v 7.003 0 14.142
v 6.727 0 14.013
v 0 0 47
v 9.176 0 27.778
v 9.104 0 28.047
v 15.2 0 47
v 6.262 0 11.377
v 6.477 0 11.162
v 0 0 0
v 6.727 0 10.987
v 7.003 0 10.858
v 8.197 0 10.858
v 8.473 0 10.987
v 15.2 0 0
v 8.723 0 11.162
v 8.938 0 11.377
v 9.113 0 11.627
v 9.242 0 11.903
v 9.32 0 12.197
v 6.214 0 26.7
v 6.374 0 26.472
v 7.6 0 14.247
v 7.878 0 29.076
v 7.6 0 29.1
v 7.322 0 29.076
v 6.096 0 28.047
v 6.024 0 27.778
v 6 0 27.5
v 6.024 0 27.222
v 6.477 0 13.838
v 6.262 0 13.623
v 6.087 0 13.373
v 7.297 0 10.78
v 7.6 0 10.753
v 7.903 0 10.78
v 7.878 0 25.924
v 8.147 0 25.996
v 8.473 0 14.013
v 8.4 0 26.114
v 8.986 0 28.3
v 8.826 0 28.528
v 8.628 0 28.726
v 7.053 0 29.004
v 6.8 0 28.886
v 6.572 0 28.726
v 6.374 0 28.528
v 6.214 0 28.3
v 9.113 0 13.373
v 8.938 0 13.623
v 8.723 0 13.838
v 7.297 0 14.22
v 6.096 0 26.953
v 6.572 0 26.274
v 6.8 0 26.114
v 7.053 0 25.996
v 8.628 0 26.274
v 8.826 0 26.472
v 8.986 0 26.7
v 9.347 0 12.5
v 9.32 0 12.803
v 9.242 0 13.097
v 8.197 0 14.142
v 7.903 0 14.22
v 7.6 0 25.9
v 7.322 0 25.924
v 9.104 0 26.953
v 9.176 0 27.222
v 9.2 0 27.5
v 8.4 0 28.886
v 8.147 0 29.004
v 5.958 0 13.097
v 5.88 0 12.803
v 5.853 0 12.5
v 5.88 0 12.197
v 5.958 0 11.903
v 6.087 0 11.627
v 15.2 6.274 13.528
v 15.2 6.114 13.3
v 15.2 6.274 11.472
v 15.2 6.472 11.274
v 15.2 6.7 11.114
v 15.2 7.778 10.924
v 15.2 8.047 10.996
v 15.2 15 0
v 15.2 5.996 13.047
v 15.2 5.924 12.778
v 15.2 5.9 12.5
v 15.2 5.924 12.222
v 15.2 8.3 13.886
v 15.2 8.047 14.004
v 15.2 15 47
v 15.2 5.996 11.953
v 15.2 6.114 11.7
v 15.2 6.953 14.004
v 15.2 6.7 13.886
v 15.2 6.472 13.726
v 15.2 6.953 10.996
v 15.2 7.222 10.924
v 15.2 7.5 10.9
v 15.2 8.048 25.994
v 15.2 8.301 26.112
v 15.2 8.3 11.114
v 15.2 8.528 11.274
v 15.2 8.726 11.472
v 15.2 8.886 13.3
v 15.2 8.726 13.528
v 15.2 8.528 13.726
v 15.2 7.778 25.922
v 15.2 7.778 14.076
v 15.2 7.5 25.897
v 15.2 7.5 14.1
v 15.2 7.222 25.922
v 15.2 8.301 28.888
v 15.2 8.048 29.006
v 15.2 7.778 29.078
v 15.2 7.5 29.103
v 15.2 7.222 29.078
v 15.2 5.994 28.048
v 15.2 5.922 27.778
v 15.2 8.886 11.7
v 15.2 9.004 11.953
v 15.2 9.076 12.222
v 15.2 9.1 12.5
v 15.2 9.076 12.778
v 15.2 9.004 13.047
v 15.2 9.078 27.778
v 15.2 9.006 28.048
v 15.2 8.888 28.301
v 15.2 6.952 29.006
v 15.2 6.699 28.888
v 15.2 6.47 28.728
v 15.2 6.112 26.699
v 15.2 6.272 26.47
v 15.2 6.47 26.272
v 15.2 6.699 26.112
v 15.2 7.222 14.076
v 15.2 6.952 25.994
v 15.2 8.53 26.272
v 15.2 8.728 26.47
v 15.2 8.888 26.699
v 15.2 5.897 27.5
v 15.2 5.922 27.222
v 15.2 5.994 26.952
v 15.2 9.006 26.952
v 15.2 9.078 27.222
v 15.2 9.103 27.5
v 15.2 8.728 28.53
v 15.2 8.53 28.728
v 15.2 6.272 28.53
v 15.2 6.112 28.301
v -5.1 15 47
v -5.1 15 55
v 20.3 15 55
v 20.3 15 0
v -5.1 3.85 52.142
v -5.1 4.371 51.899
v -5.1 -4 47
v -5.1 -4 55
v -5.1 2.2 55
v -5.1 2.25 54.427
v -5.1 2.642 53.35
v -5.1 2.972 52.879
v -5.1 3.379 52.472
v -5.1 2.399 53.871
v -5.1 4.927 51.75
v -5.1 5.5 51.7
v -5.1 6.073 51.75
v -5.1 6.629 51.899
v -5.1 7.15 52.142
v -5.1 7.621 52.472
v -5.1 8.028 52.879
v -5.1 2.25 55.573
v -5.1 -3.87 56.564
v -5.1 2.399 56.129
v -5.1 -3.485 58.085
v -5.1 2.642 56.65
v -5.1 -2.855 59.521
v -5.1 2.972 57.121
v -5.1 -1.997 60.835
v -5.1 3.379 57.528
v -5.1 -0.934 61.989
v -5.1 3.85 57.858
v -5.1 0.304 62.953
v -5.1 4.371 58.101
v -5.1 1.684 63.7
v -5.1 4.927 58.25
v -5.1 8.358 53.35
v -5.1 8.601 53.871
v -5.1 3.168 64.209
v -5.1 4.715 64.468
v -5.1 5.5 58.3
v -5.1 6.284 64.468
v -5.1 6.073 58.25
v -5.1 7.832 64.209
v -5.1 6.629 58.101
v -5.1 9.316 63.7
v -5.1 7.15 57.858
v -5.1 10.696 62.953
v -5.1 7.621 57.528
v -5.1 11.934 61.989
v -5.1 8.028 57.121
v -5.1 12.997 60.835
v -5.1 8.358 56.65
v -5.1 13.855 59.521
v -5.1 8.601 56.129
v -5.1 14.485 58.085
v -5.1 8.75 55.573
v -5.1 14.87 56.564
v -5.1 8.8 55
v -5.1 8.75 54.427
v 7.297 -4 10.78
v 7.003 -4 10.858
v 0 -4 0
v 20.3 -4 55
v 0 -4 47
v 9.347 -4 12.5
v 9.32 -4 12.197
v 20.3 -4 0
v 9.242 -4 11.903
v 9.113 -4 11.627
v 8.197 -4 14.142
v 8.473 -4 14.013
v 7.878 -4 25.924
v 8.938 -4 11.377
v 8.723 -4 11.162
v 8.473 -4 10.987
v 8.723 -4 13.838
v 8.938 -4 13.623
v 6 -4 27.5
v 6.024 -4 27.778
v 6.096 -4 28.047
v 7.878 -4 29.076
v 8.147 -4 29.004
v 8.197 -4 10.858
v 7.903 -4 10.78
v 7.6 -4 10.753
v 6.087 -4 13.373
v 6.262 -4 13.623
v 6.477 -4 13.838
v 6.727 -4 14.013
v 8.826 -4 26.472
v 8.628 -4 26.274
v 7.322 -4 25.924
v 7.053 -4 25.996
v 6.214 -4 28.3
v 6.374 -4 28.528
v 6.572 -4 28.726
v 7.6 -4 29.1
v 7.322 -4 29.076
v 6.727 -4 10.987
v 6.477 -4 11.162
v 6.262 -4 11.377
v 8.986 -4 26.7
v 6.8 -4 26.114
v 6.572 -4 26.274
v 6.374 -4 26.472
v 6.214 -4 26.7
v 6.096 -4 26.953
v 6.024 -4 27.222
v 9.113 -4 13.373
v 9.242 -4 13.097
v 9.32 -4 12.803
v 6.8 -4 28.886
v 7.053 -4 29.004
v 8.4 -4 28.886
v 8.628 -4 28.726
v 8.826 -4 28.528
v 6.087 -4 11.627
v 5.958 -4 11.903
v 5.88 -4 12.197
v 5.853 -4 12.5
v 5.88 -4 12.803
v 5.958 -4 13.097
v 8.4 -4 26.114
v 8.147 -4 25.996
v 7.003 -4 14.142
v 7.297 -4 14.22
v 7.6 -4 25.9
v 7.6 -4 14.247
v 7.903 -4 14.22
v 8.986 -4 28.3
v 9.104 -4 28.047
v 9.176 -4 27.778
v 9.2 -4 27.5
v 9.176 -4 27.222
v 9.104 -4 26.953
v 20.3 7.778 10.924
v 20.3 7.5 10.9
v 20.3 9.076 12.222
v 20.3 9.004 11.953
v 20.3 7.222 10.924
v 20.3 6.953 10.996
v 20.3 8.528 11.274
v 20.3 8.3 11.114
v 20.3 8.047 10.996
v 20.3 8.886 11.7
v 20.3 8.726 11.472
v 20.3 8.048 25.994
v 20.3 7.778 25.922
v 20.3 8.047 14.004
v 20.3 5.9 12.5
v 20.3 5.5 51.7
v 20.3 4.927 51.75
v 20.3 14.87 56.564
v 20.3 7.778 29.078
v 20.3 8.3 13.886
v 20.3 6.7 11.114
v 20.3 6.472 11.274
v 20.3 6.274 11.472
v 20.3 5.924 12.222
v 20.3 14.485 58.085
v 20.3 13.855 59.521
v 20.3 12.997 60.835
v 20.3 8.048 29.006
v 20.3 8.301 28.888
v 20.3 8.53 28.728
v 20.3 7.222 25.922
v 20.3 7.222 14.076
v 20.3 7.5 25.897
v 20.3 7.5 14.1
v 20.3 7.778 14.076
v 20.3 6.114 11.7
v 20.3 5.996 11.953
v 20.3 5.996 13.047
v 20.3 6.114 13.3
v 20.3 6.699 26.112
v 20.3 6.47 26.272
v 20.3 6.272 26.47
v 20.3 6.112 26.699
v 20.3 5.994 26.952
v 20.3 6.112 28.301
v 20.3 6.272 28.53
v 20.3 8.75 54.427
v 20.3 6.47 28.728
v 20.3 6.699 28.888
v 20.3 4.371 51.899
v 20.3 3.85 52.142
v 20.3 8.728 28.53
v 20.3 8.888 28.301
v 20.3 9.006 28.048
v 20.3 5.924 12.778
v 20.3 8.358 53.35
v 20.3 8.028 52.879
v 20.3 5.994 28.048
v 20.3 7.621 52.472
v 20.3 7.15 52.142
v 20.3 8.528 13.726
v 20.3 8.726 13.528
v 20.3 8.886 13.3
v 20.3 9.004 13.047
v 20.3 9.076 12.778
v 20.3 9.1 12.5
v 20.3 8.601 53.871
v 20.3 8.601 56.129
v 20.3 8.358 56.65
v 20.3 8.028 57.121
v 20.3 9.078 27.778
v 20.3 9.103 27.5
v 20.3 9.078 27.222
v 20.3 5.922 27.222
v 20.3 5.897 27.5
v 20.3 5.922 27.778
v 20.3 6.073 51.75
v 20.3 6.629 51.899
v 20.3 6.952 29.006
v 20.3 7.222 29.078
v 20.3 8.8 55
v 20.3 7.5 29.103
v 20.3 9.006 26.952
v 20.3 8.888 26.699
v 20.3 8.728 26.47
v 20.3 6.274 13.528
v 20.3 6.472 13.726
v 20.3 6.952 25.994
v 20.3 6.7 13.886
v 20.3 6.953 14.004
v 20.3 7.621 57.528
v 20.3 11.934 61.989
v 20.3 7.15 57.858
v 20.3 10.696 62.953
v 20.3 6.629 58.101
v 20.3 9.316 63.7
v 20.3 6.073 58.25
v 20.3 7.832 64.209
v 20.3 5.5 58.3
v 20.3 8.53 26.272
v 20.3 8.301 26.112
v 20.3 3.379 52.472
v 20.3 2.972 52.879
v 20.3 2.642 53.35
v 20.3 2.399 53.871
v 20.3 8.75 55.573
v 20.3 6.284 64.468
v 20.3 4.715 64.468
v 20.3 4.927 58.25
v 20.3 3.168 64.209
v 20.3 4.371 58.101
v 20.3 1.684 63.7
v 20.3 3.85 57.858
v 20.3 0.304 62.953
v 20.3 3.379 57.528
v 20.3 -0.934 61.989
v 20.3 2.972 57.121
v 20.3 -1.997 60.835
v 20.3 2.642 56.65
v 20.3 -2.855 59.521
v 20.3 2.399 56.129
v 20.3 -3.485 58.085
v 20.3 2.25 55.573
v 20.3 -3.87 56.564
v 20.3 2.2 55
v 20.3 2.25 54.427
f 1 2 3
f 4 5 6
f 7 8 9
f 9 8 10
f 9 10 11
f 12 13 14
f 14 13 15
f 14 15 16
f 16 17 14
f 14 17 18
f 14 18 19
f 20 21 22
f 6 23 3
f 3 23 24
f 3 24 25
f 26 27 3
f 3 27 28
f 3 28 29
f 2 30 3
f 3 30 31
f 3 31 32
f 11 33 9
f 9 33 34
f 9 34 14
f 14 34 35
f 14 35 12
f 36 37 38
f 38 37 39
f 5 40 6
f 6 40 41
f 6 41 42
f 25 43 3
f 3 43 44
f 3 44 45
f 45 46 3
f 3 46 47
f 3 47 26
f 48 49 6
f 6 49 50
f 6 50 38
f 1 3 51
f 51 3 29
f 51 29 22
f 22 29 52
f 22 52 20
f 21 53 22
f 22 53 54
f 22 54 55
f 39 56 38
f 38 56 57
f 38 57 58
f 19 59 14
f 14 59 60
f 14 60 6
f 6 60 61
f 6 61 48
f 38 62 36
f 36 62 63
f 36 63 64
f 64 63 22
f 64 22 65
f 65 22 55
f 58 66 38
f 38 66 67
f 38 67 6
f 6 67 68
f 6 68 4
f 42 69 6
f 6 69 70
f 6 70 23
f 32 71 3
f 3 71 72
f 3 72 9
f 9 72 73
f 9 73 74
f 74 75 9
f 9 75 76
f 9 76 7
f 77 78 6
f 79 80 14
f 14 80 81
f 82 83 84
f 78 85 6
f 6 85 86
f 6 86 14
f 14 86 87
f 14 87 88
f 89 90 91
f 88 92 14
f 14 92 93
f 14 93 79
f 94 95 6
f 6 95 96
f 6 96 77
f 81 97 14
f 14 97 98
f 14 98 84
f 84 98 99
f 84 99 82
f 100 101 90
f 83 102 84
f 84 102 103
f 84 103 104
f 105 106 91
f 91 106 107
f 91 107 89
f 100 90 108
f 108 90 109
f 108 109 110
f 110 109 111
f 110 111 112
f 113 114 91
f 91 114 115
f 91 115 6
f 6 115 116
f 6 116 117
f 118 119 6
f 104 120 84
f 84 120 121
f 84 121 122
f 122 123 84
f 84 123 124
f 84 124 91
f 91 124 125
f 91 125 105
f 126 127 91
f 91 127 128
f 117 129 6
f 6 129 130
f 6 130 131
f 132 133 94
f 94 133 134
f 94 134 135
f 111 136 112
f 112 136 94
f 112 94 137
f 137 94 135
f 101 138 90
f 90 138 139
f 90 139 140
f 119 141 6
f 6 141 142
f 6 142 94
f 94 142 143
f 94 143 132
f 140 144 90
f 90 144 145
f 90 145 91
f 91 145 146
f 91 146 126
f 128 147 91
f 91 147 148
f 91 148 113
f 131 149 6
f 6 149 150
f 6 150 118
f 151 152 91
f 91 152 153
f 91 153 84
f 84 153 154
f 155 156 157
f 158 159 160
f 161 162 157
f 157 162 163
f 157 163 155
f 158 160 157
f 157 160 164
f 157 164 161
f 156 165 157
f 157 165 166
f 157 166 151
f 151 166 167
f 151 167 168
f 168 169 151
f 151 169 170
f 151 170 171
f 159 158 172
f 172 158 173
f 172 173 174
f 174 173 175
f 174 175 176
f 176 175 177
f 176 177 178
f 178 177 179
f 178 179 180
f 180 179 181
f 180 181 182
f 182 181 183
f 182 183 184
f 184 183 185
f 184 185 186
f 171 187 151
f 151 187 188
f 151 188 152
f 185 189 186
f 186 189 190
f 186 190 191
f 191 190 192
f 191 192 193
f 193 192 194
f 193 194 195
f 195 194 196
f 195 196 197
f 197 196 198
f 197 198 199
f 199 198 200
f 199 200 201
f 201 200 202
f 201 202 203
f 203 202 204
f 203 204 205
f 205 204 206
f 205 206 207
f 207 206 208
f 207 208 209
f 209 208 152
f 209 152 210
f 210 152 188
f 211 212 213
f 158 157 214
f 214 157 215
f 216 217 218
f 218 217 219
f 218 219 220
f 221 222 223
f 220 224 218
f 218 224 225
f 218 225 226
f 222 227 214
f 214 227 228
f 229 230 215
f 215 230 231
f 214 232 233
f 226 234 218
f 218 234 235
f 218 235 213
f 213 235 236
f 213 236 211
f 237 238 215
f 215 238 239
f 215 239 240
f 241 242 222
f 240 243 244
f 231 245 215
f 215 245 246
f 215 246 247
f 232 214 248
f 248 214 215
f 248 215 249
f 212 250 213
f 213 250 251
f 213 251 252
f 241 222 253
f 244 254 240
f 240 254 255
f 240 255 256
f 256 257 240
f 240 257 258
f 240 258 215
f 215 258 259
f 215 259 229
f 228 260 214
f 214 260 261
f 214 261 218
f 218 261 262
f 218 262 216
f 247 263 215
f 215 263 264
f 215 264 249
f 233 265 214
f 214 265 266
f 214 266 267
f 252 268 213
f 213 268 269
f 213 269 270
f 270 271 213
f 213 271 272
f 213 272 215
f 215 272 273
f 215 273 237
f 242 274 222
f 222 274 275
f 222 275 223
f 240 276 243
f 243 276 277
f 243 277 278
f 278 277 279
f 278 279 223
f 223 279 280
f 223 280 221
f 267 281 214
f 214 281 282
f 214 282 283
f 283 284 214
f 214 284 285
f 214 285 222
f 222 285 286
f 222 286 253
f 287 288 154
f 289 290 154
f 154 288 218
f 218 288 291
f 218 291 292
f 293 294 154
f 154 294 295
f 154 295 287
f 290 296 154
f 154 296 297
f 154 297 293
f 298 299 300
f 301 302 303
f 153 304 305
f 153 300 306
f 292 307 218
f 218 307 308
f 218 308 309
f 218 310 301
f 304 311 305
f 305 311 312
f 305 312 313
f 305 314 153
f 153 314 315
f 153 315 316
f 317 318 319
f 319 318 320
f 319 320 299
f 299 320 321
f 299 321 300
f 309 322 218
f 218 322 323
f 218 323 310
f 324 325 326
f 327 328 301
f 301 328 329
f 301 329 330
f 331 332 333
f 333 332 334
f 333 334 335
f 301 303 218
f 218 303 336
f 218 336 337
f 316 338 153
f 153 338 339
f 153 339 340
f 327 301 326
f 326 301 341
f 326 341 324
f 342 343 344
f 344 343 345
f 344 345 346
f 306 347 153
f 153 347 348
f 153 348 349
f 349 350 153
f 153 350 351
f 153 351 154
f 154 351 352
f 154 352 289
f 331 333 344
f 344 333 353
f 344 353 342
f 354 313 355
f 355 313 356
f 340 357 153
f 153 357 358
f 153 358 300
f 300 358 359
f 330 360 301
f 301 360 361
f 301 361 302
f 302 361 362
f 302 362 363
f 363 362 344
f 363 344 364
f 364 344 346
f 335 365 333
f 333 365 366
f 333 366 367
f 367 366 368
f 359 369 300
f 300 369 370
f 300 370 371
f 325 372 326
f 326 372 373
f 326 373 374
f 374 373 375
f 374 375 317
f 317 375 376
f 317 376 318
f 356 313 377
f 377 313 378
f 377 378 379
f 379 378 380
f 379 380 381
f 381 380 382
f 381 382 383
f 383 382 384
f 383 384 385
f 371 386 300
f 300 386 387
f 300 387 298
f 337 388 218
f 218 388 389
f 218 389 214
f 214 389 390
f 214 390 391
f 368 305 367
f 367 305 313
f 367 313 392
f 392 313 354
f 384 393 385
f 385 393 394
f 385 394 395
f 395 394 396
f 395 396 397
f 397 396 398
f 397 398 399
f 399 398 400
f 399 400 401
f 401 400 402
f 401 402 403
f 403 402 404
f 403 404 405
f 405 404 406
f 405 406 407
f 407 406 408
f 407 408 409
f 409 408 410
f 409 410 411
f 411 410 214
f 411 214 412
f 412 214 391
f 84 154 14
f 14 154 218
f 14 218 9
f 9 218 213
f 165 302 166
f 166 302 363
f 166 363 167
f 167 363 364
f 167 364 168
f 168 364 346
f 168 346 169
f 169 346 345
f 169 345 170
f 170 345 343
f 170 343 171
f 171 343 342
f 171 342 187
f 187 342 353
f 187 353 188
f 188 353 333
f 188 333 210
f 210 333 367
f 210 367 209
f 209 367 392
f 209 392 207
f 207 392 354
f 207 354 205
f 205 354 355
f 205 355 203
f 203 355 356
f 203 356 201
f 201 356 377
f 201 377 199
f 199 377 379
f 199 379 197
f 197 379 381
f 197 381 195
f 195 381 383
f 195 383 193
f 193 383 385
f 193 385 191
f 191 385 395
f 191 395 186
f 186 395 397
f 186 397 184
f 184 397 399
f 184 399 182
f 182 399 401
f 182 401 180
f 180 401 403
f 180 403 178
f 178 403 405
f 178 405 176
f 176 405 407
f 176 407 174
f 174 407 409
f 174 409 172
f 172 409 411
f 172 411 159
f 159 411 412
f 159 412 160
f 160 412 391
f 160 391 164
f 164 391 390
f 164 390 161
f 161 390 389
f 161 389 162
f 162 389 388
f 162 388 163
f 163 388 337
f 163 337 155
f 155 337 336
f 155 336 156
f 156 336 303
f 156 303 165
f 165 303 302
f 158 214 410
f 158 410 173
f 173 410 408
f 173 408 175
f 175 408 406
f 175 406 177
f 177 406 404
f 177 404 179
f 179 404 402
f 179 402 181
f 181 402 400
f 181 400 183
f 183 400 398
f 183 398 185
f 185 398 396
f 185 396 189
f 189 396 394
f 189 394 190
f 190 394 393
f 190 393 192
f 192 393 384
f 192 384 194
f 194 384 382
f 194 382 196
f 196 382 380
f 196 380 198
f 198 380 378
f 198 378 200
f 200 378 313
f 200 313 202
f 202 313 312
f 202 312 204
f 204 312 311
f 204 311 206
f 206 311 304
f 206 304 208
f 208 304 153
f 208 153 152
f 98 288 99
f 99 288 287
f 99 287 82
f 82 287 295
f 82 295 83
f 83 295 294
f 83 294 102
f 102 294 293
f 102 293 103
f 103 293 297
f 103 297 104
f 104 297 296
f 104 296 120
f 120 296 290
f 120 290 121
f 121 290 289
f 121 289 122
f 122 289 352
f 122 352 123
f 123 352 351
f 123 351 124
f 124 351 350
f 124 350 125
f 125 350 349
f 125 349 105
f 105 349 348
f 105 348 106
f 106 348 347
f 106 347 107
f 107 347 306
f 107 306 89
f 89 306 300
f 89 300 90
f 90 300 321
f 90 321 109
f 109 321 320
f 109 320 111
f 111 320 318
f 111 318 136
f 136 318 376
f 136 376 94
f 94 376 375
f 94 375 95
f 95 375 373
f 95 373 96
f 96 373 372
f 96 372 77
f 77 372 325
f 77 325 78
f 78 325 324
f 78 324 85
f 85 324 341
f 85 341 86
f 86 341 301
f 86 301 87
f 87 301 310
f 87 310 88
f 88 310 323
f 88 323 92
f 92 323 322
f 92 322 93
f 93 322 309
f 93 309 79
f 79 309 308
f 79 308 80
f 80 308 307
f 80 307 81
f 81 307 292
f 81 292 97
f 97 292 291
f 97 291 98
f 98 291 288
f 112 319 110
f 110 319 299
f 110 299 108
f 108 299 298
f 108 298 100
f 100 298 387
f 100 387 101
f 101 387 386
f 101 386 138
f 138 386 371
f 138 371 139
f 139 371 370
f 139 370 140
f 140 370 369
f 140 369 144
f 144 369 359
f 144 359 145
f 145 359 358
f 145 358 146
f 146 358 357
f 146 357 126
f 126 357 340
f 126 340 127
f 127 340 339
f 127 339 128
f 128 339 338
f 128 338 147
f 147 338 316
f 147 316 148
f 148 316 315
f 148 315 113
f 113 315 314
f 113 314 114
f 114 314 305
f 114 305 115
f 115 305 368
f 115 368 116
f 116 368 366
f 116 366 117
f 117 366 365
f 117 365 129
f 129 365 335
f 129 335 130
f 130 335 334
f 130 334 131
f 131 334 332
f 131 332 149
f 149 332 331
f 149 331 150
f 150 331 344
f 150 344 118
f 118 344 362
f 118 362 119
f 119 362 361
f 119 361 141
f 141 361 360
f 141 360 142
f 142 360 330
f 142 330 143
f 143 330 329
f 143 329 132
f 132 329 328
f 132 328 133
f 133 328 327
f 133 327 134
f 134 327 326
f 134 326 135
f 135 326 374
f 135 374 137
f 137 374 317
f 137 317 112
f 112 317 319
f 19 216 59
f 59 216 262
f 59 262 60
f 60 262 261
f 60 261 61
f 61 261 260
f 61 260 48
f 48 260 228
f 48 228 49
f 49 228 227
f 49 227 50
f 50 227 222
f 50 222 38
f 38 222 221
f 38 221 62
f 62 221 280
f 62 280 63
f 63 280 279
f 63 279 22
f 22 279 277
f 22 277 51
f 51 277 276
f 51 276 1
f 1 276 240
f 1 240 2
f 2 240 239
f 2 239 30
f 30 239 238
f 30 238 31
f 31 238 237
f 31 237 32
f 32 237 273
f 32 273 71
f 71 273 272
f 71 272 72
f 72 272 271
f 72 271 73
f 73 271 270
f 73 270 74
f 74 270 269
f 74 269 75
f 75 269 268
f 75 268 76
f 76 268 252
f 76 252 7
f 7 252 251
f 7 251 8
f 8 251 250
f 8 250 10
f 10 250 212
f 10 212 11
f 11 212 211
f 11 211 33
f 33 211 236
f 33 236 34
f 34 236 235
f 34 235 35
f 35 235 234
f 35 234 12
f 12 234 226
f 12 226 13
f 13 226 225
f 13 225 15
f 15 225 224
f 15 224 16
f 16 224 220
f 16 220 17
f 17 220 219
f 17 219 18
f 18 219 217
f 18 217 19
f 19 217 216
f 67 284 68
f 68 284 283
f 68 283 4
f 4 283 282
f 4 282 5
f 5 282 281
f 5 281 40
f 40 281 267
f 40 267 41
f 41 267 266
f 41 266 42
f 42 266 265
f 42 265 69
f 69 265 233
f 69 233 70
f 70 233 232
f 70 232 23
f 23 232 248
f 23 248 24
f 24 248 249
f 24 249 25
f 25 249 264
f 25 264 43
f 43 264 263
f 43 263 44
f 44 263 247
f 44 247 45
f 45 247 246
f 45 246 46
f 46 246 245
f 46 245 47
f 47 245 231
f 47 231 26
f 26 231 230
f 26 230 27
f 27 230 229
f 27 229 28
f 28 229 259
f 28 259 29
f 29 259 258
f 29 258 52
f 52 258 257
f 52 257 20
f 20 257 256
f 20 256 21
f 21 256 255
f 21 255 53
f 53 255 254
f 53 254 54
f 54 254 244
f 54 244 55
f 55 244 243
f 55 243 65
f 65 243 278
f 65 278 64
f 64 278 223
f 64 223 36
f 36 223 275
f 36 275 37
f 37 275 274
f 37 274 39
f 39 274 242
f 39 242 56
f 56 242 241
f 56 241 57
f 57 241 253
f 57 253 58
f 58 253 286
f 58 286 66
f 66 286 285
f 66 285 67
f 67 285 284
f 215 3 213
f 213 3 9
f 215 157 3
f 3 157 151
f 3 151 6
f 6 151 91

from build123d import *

# Parameters (mm, degrees)
BOSS_EXTRUDE1_DEPTH = 50
SKETCH2_W           = 25.4
SKETCH2_H           = 19
BOSS_EXTRUDE2_DEPTH = 25.4
SKETCH3_R           = 3.3
CUT_EXTRUDE1_DEPTH  = 25.4
SKETCH4_R           = 1.6
SKETCH4_R_2         = 1.60271378
CUT_EXTRUDE2_DEPTH  = 25.4
SKETCH5_R           = 1.746858549
SKETCH5_R_2         = 1.6
CUT_EXTRUDE3_DEPTH  = 20
SKETCH6_W           = 5.1
SKETCH6_H           = 47
CUT_EXTRUDE4_DEPTH  = 20
SKETCH7_W           = 15.2
SKETCH7_H           = 3
BOSS_EXTRUDE3_DEPTH = 15


with BuildPart() as part:
    # Sketch1 → Boss-Extrude1 (new body)
    with BuildSketch(Plane.XY):
        Polygon((0, 0), (0, 15), (-5.1, 15), (-5.1, -4), (20.3, -4), (20.3, 15), (15.2, 15), (15.2, 0), align=None)
    extrude(amount=BOSS_EXTRUDE1_DEPTH)

    # Sketch2 → Boss-Extrude2 (add)
    with BuildSketch(Plane.XY.offset(50)):
        with Locations((7.6, 5.5)):
            Rectangle(SKETCH2_W, SKETCH2_H)
    extrude(amount=BOSS_EXTRUDE2_DEPTH)

    # Sketch3 → Cut-Extrude1 (cut)
    with BuildSketch(Plane(origin=(20.3, 0, 0), x_dir=(0, 0, -1), z_dir=(1, 0, 0))):
        with Locations((-55, 5.5)):
            Circle(SKETCH3_R)
        with BuildLine():
            Line((-55, -4), (-75.4, -4))
            Line((-75.4, -4), (-75.4, 15))
            Line((-75.4, 15), (-55, 15))
            ThreePointArc((-55, 15), (-64.5, 5.5), (-55, -4))
        make_face()
    extrude(amount=-CUT_EXTRUDE1_DEPTH, mode=Mode.SUBTRACT)

    # Sketch4 → Cut-Extrude2 (cut)
    with BuildSketch(Plane(origin=(20.3, 0, 0), x_dir=(0, 0, -1), z_dir=(1, 0, 0))):
        with Locations((-12.5, 7.5)):
            Circle(SKETCH4_R)
        with Locations((-27.5, 7.5)):
            Circle(SKETCH4_R_2)
    extrude(amount=-CUT_EXTRUDE2_DEPTH, mode=Mode.SUBTRACT)

    # Sketch5 → Cut-Extrude3 (cut, through all)
    with BuildSketch(Plane.XZ.offset(4)):
        with Locations((7.6, 12.5)):
            Circle(SKETCH5_R)
        with Locations((7.6, 27.5)):
            Circle(SKETCH5_R_2)
    extrude(amount=-CUT_EXTRUDE3_DEPTH, mode=Mode.SUBTRACT)

    # Sketch6 → Cut-Extrude4 (cut, through all)
    with BuildSketch(Plane(origin=(0, 15, 0), x_dir=(1, 0, 0), z_dir=(0, 1, 0))):
        with Locations((-2.55, -23.5)):
            Rectangle(SKETCH6_W, SKETCH6_H)
    extrude(amount=-CUT_EXTRUDE4_DEPTH, mode=Mode.SUBTRACT)

    # Sketch7 → Boss-Extrude3 (add)
    with BuildSketch(Plane(origin=(0, 0, 0), x_dir=(1, 0, 0), z_dir=(0, 1, 0))):
        with Locations((7.6, -48.5)):
            Rectangle(SKETCH7_W, SKETCH7_H)
    extrude(amount=BOSS_EXTRUDE3_DEPTH)


solid = part.part
